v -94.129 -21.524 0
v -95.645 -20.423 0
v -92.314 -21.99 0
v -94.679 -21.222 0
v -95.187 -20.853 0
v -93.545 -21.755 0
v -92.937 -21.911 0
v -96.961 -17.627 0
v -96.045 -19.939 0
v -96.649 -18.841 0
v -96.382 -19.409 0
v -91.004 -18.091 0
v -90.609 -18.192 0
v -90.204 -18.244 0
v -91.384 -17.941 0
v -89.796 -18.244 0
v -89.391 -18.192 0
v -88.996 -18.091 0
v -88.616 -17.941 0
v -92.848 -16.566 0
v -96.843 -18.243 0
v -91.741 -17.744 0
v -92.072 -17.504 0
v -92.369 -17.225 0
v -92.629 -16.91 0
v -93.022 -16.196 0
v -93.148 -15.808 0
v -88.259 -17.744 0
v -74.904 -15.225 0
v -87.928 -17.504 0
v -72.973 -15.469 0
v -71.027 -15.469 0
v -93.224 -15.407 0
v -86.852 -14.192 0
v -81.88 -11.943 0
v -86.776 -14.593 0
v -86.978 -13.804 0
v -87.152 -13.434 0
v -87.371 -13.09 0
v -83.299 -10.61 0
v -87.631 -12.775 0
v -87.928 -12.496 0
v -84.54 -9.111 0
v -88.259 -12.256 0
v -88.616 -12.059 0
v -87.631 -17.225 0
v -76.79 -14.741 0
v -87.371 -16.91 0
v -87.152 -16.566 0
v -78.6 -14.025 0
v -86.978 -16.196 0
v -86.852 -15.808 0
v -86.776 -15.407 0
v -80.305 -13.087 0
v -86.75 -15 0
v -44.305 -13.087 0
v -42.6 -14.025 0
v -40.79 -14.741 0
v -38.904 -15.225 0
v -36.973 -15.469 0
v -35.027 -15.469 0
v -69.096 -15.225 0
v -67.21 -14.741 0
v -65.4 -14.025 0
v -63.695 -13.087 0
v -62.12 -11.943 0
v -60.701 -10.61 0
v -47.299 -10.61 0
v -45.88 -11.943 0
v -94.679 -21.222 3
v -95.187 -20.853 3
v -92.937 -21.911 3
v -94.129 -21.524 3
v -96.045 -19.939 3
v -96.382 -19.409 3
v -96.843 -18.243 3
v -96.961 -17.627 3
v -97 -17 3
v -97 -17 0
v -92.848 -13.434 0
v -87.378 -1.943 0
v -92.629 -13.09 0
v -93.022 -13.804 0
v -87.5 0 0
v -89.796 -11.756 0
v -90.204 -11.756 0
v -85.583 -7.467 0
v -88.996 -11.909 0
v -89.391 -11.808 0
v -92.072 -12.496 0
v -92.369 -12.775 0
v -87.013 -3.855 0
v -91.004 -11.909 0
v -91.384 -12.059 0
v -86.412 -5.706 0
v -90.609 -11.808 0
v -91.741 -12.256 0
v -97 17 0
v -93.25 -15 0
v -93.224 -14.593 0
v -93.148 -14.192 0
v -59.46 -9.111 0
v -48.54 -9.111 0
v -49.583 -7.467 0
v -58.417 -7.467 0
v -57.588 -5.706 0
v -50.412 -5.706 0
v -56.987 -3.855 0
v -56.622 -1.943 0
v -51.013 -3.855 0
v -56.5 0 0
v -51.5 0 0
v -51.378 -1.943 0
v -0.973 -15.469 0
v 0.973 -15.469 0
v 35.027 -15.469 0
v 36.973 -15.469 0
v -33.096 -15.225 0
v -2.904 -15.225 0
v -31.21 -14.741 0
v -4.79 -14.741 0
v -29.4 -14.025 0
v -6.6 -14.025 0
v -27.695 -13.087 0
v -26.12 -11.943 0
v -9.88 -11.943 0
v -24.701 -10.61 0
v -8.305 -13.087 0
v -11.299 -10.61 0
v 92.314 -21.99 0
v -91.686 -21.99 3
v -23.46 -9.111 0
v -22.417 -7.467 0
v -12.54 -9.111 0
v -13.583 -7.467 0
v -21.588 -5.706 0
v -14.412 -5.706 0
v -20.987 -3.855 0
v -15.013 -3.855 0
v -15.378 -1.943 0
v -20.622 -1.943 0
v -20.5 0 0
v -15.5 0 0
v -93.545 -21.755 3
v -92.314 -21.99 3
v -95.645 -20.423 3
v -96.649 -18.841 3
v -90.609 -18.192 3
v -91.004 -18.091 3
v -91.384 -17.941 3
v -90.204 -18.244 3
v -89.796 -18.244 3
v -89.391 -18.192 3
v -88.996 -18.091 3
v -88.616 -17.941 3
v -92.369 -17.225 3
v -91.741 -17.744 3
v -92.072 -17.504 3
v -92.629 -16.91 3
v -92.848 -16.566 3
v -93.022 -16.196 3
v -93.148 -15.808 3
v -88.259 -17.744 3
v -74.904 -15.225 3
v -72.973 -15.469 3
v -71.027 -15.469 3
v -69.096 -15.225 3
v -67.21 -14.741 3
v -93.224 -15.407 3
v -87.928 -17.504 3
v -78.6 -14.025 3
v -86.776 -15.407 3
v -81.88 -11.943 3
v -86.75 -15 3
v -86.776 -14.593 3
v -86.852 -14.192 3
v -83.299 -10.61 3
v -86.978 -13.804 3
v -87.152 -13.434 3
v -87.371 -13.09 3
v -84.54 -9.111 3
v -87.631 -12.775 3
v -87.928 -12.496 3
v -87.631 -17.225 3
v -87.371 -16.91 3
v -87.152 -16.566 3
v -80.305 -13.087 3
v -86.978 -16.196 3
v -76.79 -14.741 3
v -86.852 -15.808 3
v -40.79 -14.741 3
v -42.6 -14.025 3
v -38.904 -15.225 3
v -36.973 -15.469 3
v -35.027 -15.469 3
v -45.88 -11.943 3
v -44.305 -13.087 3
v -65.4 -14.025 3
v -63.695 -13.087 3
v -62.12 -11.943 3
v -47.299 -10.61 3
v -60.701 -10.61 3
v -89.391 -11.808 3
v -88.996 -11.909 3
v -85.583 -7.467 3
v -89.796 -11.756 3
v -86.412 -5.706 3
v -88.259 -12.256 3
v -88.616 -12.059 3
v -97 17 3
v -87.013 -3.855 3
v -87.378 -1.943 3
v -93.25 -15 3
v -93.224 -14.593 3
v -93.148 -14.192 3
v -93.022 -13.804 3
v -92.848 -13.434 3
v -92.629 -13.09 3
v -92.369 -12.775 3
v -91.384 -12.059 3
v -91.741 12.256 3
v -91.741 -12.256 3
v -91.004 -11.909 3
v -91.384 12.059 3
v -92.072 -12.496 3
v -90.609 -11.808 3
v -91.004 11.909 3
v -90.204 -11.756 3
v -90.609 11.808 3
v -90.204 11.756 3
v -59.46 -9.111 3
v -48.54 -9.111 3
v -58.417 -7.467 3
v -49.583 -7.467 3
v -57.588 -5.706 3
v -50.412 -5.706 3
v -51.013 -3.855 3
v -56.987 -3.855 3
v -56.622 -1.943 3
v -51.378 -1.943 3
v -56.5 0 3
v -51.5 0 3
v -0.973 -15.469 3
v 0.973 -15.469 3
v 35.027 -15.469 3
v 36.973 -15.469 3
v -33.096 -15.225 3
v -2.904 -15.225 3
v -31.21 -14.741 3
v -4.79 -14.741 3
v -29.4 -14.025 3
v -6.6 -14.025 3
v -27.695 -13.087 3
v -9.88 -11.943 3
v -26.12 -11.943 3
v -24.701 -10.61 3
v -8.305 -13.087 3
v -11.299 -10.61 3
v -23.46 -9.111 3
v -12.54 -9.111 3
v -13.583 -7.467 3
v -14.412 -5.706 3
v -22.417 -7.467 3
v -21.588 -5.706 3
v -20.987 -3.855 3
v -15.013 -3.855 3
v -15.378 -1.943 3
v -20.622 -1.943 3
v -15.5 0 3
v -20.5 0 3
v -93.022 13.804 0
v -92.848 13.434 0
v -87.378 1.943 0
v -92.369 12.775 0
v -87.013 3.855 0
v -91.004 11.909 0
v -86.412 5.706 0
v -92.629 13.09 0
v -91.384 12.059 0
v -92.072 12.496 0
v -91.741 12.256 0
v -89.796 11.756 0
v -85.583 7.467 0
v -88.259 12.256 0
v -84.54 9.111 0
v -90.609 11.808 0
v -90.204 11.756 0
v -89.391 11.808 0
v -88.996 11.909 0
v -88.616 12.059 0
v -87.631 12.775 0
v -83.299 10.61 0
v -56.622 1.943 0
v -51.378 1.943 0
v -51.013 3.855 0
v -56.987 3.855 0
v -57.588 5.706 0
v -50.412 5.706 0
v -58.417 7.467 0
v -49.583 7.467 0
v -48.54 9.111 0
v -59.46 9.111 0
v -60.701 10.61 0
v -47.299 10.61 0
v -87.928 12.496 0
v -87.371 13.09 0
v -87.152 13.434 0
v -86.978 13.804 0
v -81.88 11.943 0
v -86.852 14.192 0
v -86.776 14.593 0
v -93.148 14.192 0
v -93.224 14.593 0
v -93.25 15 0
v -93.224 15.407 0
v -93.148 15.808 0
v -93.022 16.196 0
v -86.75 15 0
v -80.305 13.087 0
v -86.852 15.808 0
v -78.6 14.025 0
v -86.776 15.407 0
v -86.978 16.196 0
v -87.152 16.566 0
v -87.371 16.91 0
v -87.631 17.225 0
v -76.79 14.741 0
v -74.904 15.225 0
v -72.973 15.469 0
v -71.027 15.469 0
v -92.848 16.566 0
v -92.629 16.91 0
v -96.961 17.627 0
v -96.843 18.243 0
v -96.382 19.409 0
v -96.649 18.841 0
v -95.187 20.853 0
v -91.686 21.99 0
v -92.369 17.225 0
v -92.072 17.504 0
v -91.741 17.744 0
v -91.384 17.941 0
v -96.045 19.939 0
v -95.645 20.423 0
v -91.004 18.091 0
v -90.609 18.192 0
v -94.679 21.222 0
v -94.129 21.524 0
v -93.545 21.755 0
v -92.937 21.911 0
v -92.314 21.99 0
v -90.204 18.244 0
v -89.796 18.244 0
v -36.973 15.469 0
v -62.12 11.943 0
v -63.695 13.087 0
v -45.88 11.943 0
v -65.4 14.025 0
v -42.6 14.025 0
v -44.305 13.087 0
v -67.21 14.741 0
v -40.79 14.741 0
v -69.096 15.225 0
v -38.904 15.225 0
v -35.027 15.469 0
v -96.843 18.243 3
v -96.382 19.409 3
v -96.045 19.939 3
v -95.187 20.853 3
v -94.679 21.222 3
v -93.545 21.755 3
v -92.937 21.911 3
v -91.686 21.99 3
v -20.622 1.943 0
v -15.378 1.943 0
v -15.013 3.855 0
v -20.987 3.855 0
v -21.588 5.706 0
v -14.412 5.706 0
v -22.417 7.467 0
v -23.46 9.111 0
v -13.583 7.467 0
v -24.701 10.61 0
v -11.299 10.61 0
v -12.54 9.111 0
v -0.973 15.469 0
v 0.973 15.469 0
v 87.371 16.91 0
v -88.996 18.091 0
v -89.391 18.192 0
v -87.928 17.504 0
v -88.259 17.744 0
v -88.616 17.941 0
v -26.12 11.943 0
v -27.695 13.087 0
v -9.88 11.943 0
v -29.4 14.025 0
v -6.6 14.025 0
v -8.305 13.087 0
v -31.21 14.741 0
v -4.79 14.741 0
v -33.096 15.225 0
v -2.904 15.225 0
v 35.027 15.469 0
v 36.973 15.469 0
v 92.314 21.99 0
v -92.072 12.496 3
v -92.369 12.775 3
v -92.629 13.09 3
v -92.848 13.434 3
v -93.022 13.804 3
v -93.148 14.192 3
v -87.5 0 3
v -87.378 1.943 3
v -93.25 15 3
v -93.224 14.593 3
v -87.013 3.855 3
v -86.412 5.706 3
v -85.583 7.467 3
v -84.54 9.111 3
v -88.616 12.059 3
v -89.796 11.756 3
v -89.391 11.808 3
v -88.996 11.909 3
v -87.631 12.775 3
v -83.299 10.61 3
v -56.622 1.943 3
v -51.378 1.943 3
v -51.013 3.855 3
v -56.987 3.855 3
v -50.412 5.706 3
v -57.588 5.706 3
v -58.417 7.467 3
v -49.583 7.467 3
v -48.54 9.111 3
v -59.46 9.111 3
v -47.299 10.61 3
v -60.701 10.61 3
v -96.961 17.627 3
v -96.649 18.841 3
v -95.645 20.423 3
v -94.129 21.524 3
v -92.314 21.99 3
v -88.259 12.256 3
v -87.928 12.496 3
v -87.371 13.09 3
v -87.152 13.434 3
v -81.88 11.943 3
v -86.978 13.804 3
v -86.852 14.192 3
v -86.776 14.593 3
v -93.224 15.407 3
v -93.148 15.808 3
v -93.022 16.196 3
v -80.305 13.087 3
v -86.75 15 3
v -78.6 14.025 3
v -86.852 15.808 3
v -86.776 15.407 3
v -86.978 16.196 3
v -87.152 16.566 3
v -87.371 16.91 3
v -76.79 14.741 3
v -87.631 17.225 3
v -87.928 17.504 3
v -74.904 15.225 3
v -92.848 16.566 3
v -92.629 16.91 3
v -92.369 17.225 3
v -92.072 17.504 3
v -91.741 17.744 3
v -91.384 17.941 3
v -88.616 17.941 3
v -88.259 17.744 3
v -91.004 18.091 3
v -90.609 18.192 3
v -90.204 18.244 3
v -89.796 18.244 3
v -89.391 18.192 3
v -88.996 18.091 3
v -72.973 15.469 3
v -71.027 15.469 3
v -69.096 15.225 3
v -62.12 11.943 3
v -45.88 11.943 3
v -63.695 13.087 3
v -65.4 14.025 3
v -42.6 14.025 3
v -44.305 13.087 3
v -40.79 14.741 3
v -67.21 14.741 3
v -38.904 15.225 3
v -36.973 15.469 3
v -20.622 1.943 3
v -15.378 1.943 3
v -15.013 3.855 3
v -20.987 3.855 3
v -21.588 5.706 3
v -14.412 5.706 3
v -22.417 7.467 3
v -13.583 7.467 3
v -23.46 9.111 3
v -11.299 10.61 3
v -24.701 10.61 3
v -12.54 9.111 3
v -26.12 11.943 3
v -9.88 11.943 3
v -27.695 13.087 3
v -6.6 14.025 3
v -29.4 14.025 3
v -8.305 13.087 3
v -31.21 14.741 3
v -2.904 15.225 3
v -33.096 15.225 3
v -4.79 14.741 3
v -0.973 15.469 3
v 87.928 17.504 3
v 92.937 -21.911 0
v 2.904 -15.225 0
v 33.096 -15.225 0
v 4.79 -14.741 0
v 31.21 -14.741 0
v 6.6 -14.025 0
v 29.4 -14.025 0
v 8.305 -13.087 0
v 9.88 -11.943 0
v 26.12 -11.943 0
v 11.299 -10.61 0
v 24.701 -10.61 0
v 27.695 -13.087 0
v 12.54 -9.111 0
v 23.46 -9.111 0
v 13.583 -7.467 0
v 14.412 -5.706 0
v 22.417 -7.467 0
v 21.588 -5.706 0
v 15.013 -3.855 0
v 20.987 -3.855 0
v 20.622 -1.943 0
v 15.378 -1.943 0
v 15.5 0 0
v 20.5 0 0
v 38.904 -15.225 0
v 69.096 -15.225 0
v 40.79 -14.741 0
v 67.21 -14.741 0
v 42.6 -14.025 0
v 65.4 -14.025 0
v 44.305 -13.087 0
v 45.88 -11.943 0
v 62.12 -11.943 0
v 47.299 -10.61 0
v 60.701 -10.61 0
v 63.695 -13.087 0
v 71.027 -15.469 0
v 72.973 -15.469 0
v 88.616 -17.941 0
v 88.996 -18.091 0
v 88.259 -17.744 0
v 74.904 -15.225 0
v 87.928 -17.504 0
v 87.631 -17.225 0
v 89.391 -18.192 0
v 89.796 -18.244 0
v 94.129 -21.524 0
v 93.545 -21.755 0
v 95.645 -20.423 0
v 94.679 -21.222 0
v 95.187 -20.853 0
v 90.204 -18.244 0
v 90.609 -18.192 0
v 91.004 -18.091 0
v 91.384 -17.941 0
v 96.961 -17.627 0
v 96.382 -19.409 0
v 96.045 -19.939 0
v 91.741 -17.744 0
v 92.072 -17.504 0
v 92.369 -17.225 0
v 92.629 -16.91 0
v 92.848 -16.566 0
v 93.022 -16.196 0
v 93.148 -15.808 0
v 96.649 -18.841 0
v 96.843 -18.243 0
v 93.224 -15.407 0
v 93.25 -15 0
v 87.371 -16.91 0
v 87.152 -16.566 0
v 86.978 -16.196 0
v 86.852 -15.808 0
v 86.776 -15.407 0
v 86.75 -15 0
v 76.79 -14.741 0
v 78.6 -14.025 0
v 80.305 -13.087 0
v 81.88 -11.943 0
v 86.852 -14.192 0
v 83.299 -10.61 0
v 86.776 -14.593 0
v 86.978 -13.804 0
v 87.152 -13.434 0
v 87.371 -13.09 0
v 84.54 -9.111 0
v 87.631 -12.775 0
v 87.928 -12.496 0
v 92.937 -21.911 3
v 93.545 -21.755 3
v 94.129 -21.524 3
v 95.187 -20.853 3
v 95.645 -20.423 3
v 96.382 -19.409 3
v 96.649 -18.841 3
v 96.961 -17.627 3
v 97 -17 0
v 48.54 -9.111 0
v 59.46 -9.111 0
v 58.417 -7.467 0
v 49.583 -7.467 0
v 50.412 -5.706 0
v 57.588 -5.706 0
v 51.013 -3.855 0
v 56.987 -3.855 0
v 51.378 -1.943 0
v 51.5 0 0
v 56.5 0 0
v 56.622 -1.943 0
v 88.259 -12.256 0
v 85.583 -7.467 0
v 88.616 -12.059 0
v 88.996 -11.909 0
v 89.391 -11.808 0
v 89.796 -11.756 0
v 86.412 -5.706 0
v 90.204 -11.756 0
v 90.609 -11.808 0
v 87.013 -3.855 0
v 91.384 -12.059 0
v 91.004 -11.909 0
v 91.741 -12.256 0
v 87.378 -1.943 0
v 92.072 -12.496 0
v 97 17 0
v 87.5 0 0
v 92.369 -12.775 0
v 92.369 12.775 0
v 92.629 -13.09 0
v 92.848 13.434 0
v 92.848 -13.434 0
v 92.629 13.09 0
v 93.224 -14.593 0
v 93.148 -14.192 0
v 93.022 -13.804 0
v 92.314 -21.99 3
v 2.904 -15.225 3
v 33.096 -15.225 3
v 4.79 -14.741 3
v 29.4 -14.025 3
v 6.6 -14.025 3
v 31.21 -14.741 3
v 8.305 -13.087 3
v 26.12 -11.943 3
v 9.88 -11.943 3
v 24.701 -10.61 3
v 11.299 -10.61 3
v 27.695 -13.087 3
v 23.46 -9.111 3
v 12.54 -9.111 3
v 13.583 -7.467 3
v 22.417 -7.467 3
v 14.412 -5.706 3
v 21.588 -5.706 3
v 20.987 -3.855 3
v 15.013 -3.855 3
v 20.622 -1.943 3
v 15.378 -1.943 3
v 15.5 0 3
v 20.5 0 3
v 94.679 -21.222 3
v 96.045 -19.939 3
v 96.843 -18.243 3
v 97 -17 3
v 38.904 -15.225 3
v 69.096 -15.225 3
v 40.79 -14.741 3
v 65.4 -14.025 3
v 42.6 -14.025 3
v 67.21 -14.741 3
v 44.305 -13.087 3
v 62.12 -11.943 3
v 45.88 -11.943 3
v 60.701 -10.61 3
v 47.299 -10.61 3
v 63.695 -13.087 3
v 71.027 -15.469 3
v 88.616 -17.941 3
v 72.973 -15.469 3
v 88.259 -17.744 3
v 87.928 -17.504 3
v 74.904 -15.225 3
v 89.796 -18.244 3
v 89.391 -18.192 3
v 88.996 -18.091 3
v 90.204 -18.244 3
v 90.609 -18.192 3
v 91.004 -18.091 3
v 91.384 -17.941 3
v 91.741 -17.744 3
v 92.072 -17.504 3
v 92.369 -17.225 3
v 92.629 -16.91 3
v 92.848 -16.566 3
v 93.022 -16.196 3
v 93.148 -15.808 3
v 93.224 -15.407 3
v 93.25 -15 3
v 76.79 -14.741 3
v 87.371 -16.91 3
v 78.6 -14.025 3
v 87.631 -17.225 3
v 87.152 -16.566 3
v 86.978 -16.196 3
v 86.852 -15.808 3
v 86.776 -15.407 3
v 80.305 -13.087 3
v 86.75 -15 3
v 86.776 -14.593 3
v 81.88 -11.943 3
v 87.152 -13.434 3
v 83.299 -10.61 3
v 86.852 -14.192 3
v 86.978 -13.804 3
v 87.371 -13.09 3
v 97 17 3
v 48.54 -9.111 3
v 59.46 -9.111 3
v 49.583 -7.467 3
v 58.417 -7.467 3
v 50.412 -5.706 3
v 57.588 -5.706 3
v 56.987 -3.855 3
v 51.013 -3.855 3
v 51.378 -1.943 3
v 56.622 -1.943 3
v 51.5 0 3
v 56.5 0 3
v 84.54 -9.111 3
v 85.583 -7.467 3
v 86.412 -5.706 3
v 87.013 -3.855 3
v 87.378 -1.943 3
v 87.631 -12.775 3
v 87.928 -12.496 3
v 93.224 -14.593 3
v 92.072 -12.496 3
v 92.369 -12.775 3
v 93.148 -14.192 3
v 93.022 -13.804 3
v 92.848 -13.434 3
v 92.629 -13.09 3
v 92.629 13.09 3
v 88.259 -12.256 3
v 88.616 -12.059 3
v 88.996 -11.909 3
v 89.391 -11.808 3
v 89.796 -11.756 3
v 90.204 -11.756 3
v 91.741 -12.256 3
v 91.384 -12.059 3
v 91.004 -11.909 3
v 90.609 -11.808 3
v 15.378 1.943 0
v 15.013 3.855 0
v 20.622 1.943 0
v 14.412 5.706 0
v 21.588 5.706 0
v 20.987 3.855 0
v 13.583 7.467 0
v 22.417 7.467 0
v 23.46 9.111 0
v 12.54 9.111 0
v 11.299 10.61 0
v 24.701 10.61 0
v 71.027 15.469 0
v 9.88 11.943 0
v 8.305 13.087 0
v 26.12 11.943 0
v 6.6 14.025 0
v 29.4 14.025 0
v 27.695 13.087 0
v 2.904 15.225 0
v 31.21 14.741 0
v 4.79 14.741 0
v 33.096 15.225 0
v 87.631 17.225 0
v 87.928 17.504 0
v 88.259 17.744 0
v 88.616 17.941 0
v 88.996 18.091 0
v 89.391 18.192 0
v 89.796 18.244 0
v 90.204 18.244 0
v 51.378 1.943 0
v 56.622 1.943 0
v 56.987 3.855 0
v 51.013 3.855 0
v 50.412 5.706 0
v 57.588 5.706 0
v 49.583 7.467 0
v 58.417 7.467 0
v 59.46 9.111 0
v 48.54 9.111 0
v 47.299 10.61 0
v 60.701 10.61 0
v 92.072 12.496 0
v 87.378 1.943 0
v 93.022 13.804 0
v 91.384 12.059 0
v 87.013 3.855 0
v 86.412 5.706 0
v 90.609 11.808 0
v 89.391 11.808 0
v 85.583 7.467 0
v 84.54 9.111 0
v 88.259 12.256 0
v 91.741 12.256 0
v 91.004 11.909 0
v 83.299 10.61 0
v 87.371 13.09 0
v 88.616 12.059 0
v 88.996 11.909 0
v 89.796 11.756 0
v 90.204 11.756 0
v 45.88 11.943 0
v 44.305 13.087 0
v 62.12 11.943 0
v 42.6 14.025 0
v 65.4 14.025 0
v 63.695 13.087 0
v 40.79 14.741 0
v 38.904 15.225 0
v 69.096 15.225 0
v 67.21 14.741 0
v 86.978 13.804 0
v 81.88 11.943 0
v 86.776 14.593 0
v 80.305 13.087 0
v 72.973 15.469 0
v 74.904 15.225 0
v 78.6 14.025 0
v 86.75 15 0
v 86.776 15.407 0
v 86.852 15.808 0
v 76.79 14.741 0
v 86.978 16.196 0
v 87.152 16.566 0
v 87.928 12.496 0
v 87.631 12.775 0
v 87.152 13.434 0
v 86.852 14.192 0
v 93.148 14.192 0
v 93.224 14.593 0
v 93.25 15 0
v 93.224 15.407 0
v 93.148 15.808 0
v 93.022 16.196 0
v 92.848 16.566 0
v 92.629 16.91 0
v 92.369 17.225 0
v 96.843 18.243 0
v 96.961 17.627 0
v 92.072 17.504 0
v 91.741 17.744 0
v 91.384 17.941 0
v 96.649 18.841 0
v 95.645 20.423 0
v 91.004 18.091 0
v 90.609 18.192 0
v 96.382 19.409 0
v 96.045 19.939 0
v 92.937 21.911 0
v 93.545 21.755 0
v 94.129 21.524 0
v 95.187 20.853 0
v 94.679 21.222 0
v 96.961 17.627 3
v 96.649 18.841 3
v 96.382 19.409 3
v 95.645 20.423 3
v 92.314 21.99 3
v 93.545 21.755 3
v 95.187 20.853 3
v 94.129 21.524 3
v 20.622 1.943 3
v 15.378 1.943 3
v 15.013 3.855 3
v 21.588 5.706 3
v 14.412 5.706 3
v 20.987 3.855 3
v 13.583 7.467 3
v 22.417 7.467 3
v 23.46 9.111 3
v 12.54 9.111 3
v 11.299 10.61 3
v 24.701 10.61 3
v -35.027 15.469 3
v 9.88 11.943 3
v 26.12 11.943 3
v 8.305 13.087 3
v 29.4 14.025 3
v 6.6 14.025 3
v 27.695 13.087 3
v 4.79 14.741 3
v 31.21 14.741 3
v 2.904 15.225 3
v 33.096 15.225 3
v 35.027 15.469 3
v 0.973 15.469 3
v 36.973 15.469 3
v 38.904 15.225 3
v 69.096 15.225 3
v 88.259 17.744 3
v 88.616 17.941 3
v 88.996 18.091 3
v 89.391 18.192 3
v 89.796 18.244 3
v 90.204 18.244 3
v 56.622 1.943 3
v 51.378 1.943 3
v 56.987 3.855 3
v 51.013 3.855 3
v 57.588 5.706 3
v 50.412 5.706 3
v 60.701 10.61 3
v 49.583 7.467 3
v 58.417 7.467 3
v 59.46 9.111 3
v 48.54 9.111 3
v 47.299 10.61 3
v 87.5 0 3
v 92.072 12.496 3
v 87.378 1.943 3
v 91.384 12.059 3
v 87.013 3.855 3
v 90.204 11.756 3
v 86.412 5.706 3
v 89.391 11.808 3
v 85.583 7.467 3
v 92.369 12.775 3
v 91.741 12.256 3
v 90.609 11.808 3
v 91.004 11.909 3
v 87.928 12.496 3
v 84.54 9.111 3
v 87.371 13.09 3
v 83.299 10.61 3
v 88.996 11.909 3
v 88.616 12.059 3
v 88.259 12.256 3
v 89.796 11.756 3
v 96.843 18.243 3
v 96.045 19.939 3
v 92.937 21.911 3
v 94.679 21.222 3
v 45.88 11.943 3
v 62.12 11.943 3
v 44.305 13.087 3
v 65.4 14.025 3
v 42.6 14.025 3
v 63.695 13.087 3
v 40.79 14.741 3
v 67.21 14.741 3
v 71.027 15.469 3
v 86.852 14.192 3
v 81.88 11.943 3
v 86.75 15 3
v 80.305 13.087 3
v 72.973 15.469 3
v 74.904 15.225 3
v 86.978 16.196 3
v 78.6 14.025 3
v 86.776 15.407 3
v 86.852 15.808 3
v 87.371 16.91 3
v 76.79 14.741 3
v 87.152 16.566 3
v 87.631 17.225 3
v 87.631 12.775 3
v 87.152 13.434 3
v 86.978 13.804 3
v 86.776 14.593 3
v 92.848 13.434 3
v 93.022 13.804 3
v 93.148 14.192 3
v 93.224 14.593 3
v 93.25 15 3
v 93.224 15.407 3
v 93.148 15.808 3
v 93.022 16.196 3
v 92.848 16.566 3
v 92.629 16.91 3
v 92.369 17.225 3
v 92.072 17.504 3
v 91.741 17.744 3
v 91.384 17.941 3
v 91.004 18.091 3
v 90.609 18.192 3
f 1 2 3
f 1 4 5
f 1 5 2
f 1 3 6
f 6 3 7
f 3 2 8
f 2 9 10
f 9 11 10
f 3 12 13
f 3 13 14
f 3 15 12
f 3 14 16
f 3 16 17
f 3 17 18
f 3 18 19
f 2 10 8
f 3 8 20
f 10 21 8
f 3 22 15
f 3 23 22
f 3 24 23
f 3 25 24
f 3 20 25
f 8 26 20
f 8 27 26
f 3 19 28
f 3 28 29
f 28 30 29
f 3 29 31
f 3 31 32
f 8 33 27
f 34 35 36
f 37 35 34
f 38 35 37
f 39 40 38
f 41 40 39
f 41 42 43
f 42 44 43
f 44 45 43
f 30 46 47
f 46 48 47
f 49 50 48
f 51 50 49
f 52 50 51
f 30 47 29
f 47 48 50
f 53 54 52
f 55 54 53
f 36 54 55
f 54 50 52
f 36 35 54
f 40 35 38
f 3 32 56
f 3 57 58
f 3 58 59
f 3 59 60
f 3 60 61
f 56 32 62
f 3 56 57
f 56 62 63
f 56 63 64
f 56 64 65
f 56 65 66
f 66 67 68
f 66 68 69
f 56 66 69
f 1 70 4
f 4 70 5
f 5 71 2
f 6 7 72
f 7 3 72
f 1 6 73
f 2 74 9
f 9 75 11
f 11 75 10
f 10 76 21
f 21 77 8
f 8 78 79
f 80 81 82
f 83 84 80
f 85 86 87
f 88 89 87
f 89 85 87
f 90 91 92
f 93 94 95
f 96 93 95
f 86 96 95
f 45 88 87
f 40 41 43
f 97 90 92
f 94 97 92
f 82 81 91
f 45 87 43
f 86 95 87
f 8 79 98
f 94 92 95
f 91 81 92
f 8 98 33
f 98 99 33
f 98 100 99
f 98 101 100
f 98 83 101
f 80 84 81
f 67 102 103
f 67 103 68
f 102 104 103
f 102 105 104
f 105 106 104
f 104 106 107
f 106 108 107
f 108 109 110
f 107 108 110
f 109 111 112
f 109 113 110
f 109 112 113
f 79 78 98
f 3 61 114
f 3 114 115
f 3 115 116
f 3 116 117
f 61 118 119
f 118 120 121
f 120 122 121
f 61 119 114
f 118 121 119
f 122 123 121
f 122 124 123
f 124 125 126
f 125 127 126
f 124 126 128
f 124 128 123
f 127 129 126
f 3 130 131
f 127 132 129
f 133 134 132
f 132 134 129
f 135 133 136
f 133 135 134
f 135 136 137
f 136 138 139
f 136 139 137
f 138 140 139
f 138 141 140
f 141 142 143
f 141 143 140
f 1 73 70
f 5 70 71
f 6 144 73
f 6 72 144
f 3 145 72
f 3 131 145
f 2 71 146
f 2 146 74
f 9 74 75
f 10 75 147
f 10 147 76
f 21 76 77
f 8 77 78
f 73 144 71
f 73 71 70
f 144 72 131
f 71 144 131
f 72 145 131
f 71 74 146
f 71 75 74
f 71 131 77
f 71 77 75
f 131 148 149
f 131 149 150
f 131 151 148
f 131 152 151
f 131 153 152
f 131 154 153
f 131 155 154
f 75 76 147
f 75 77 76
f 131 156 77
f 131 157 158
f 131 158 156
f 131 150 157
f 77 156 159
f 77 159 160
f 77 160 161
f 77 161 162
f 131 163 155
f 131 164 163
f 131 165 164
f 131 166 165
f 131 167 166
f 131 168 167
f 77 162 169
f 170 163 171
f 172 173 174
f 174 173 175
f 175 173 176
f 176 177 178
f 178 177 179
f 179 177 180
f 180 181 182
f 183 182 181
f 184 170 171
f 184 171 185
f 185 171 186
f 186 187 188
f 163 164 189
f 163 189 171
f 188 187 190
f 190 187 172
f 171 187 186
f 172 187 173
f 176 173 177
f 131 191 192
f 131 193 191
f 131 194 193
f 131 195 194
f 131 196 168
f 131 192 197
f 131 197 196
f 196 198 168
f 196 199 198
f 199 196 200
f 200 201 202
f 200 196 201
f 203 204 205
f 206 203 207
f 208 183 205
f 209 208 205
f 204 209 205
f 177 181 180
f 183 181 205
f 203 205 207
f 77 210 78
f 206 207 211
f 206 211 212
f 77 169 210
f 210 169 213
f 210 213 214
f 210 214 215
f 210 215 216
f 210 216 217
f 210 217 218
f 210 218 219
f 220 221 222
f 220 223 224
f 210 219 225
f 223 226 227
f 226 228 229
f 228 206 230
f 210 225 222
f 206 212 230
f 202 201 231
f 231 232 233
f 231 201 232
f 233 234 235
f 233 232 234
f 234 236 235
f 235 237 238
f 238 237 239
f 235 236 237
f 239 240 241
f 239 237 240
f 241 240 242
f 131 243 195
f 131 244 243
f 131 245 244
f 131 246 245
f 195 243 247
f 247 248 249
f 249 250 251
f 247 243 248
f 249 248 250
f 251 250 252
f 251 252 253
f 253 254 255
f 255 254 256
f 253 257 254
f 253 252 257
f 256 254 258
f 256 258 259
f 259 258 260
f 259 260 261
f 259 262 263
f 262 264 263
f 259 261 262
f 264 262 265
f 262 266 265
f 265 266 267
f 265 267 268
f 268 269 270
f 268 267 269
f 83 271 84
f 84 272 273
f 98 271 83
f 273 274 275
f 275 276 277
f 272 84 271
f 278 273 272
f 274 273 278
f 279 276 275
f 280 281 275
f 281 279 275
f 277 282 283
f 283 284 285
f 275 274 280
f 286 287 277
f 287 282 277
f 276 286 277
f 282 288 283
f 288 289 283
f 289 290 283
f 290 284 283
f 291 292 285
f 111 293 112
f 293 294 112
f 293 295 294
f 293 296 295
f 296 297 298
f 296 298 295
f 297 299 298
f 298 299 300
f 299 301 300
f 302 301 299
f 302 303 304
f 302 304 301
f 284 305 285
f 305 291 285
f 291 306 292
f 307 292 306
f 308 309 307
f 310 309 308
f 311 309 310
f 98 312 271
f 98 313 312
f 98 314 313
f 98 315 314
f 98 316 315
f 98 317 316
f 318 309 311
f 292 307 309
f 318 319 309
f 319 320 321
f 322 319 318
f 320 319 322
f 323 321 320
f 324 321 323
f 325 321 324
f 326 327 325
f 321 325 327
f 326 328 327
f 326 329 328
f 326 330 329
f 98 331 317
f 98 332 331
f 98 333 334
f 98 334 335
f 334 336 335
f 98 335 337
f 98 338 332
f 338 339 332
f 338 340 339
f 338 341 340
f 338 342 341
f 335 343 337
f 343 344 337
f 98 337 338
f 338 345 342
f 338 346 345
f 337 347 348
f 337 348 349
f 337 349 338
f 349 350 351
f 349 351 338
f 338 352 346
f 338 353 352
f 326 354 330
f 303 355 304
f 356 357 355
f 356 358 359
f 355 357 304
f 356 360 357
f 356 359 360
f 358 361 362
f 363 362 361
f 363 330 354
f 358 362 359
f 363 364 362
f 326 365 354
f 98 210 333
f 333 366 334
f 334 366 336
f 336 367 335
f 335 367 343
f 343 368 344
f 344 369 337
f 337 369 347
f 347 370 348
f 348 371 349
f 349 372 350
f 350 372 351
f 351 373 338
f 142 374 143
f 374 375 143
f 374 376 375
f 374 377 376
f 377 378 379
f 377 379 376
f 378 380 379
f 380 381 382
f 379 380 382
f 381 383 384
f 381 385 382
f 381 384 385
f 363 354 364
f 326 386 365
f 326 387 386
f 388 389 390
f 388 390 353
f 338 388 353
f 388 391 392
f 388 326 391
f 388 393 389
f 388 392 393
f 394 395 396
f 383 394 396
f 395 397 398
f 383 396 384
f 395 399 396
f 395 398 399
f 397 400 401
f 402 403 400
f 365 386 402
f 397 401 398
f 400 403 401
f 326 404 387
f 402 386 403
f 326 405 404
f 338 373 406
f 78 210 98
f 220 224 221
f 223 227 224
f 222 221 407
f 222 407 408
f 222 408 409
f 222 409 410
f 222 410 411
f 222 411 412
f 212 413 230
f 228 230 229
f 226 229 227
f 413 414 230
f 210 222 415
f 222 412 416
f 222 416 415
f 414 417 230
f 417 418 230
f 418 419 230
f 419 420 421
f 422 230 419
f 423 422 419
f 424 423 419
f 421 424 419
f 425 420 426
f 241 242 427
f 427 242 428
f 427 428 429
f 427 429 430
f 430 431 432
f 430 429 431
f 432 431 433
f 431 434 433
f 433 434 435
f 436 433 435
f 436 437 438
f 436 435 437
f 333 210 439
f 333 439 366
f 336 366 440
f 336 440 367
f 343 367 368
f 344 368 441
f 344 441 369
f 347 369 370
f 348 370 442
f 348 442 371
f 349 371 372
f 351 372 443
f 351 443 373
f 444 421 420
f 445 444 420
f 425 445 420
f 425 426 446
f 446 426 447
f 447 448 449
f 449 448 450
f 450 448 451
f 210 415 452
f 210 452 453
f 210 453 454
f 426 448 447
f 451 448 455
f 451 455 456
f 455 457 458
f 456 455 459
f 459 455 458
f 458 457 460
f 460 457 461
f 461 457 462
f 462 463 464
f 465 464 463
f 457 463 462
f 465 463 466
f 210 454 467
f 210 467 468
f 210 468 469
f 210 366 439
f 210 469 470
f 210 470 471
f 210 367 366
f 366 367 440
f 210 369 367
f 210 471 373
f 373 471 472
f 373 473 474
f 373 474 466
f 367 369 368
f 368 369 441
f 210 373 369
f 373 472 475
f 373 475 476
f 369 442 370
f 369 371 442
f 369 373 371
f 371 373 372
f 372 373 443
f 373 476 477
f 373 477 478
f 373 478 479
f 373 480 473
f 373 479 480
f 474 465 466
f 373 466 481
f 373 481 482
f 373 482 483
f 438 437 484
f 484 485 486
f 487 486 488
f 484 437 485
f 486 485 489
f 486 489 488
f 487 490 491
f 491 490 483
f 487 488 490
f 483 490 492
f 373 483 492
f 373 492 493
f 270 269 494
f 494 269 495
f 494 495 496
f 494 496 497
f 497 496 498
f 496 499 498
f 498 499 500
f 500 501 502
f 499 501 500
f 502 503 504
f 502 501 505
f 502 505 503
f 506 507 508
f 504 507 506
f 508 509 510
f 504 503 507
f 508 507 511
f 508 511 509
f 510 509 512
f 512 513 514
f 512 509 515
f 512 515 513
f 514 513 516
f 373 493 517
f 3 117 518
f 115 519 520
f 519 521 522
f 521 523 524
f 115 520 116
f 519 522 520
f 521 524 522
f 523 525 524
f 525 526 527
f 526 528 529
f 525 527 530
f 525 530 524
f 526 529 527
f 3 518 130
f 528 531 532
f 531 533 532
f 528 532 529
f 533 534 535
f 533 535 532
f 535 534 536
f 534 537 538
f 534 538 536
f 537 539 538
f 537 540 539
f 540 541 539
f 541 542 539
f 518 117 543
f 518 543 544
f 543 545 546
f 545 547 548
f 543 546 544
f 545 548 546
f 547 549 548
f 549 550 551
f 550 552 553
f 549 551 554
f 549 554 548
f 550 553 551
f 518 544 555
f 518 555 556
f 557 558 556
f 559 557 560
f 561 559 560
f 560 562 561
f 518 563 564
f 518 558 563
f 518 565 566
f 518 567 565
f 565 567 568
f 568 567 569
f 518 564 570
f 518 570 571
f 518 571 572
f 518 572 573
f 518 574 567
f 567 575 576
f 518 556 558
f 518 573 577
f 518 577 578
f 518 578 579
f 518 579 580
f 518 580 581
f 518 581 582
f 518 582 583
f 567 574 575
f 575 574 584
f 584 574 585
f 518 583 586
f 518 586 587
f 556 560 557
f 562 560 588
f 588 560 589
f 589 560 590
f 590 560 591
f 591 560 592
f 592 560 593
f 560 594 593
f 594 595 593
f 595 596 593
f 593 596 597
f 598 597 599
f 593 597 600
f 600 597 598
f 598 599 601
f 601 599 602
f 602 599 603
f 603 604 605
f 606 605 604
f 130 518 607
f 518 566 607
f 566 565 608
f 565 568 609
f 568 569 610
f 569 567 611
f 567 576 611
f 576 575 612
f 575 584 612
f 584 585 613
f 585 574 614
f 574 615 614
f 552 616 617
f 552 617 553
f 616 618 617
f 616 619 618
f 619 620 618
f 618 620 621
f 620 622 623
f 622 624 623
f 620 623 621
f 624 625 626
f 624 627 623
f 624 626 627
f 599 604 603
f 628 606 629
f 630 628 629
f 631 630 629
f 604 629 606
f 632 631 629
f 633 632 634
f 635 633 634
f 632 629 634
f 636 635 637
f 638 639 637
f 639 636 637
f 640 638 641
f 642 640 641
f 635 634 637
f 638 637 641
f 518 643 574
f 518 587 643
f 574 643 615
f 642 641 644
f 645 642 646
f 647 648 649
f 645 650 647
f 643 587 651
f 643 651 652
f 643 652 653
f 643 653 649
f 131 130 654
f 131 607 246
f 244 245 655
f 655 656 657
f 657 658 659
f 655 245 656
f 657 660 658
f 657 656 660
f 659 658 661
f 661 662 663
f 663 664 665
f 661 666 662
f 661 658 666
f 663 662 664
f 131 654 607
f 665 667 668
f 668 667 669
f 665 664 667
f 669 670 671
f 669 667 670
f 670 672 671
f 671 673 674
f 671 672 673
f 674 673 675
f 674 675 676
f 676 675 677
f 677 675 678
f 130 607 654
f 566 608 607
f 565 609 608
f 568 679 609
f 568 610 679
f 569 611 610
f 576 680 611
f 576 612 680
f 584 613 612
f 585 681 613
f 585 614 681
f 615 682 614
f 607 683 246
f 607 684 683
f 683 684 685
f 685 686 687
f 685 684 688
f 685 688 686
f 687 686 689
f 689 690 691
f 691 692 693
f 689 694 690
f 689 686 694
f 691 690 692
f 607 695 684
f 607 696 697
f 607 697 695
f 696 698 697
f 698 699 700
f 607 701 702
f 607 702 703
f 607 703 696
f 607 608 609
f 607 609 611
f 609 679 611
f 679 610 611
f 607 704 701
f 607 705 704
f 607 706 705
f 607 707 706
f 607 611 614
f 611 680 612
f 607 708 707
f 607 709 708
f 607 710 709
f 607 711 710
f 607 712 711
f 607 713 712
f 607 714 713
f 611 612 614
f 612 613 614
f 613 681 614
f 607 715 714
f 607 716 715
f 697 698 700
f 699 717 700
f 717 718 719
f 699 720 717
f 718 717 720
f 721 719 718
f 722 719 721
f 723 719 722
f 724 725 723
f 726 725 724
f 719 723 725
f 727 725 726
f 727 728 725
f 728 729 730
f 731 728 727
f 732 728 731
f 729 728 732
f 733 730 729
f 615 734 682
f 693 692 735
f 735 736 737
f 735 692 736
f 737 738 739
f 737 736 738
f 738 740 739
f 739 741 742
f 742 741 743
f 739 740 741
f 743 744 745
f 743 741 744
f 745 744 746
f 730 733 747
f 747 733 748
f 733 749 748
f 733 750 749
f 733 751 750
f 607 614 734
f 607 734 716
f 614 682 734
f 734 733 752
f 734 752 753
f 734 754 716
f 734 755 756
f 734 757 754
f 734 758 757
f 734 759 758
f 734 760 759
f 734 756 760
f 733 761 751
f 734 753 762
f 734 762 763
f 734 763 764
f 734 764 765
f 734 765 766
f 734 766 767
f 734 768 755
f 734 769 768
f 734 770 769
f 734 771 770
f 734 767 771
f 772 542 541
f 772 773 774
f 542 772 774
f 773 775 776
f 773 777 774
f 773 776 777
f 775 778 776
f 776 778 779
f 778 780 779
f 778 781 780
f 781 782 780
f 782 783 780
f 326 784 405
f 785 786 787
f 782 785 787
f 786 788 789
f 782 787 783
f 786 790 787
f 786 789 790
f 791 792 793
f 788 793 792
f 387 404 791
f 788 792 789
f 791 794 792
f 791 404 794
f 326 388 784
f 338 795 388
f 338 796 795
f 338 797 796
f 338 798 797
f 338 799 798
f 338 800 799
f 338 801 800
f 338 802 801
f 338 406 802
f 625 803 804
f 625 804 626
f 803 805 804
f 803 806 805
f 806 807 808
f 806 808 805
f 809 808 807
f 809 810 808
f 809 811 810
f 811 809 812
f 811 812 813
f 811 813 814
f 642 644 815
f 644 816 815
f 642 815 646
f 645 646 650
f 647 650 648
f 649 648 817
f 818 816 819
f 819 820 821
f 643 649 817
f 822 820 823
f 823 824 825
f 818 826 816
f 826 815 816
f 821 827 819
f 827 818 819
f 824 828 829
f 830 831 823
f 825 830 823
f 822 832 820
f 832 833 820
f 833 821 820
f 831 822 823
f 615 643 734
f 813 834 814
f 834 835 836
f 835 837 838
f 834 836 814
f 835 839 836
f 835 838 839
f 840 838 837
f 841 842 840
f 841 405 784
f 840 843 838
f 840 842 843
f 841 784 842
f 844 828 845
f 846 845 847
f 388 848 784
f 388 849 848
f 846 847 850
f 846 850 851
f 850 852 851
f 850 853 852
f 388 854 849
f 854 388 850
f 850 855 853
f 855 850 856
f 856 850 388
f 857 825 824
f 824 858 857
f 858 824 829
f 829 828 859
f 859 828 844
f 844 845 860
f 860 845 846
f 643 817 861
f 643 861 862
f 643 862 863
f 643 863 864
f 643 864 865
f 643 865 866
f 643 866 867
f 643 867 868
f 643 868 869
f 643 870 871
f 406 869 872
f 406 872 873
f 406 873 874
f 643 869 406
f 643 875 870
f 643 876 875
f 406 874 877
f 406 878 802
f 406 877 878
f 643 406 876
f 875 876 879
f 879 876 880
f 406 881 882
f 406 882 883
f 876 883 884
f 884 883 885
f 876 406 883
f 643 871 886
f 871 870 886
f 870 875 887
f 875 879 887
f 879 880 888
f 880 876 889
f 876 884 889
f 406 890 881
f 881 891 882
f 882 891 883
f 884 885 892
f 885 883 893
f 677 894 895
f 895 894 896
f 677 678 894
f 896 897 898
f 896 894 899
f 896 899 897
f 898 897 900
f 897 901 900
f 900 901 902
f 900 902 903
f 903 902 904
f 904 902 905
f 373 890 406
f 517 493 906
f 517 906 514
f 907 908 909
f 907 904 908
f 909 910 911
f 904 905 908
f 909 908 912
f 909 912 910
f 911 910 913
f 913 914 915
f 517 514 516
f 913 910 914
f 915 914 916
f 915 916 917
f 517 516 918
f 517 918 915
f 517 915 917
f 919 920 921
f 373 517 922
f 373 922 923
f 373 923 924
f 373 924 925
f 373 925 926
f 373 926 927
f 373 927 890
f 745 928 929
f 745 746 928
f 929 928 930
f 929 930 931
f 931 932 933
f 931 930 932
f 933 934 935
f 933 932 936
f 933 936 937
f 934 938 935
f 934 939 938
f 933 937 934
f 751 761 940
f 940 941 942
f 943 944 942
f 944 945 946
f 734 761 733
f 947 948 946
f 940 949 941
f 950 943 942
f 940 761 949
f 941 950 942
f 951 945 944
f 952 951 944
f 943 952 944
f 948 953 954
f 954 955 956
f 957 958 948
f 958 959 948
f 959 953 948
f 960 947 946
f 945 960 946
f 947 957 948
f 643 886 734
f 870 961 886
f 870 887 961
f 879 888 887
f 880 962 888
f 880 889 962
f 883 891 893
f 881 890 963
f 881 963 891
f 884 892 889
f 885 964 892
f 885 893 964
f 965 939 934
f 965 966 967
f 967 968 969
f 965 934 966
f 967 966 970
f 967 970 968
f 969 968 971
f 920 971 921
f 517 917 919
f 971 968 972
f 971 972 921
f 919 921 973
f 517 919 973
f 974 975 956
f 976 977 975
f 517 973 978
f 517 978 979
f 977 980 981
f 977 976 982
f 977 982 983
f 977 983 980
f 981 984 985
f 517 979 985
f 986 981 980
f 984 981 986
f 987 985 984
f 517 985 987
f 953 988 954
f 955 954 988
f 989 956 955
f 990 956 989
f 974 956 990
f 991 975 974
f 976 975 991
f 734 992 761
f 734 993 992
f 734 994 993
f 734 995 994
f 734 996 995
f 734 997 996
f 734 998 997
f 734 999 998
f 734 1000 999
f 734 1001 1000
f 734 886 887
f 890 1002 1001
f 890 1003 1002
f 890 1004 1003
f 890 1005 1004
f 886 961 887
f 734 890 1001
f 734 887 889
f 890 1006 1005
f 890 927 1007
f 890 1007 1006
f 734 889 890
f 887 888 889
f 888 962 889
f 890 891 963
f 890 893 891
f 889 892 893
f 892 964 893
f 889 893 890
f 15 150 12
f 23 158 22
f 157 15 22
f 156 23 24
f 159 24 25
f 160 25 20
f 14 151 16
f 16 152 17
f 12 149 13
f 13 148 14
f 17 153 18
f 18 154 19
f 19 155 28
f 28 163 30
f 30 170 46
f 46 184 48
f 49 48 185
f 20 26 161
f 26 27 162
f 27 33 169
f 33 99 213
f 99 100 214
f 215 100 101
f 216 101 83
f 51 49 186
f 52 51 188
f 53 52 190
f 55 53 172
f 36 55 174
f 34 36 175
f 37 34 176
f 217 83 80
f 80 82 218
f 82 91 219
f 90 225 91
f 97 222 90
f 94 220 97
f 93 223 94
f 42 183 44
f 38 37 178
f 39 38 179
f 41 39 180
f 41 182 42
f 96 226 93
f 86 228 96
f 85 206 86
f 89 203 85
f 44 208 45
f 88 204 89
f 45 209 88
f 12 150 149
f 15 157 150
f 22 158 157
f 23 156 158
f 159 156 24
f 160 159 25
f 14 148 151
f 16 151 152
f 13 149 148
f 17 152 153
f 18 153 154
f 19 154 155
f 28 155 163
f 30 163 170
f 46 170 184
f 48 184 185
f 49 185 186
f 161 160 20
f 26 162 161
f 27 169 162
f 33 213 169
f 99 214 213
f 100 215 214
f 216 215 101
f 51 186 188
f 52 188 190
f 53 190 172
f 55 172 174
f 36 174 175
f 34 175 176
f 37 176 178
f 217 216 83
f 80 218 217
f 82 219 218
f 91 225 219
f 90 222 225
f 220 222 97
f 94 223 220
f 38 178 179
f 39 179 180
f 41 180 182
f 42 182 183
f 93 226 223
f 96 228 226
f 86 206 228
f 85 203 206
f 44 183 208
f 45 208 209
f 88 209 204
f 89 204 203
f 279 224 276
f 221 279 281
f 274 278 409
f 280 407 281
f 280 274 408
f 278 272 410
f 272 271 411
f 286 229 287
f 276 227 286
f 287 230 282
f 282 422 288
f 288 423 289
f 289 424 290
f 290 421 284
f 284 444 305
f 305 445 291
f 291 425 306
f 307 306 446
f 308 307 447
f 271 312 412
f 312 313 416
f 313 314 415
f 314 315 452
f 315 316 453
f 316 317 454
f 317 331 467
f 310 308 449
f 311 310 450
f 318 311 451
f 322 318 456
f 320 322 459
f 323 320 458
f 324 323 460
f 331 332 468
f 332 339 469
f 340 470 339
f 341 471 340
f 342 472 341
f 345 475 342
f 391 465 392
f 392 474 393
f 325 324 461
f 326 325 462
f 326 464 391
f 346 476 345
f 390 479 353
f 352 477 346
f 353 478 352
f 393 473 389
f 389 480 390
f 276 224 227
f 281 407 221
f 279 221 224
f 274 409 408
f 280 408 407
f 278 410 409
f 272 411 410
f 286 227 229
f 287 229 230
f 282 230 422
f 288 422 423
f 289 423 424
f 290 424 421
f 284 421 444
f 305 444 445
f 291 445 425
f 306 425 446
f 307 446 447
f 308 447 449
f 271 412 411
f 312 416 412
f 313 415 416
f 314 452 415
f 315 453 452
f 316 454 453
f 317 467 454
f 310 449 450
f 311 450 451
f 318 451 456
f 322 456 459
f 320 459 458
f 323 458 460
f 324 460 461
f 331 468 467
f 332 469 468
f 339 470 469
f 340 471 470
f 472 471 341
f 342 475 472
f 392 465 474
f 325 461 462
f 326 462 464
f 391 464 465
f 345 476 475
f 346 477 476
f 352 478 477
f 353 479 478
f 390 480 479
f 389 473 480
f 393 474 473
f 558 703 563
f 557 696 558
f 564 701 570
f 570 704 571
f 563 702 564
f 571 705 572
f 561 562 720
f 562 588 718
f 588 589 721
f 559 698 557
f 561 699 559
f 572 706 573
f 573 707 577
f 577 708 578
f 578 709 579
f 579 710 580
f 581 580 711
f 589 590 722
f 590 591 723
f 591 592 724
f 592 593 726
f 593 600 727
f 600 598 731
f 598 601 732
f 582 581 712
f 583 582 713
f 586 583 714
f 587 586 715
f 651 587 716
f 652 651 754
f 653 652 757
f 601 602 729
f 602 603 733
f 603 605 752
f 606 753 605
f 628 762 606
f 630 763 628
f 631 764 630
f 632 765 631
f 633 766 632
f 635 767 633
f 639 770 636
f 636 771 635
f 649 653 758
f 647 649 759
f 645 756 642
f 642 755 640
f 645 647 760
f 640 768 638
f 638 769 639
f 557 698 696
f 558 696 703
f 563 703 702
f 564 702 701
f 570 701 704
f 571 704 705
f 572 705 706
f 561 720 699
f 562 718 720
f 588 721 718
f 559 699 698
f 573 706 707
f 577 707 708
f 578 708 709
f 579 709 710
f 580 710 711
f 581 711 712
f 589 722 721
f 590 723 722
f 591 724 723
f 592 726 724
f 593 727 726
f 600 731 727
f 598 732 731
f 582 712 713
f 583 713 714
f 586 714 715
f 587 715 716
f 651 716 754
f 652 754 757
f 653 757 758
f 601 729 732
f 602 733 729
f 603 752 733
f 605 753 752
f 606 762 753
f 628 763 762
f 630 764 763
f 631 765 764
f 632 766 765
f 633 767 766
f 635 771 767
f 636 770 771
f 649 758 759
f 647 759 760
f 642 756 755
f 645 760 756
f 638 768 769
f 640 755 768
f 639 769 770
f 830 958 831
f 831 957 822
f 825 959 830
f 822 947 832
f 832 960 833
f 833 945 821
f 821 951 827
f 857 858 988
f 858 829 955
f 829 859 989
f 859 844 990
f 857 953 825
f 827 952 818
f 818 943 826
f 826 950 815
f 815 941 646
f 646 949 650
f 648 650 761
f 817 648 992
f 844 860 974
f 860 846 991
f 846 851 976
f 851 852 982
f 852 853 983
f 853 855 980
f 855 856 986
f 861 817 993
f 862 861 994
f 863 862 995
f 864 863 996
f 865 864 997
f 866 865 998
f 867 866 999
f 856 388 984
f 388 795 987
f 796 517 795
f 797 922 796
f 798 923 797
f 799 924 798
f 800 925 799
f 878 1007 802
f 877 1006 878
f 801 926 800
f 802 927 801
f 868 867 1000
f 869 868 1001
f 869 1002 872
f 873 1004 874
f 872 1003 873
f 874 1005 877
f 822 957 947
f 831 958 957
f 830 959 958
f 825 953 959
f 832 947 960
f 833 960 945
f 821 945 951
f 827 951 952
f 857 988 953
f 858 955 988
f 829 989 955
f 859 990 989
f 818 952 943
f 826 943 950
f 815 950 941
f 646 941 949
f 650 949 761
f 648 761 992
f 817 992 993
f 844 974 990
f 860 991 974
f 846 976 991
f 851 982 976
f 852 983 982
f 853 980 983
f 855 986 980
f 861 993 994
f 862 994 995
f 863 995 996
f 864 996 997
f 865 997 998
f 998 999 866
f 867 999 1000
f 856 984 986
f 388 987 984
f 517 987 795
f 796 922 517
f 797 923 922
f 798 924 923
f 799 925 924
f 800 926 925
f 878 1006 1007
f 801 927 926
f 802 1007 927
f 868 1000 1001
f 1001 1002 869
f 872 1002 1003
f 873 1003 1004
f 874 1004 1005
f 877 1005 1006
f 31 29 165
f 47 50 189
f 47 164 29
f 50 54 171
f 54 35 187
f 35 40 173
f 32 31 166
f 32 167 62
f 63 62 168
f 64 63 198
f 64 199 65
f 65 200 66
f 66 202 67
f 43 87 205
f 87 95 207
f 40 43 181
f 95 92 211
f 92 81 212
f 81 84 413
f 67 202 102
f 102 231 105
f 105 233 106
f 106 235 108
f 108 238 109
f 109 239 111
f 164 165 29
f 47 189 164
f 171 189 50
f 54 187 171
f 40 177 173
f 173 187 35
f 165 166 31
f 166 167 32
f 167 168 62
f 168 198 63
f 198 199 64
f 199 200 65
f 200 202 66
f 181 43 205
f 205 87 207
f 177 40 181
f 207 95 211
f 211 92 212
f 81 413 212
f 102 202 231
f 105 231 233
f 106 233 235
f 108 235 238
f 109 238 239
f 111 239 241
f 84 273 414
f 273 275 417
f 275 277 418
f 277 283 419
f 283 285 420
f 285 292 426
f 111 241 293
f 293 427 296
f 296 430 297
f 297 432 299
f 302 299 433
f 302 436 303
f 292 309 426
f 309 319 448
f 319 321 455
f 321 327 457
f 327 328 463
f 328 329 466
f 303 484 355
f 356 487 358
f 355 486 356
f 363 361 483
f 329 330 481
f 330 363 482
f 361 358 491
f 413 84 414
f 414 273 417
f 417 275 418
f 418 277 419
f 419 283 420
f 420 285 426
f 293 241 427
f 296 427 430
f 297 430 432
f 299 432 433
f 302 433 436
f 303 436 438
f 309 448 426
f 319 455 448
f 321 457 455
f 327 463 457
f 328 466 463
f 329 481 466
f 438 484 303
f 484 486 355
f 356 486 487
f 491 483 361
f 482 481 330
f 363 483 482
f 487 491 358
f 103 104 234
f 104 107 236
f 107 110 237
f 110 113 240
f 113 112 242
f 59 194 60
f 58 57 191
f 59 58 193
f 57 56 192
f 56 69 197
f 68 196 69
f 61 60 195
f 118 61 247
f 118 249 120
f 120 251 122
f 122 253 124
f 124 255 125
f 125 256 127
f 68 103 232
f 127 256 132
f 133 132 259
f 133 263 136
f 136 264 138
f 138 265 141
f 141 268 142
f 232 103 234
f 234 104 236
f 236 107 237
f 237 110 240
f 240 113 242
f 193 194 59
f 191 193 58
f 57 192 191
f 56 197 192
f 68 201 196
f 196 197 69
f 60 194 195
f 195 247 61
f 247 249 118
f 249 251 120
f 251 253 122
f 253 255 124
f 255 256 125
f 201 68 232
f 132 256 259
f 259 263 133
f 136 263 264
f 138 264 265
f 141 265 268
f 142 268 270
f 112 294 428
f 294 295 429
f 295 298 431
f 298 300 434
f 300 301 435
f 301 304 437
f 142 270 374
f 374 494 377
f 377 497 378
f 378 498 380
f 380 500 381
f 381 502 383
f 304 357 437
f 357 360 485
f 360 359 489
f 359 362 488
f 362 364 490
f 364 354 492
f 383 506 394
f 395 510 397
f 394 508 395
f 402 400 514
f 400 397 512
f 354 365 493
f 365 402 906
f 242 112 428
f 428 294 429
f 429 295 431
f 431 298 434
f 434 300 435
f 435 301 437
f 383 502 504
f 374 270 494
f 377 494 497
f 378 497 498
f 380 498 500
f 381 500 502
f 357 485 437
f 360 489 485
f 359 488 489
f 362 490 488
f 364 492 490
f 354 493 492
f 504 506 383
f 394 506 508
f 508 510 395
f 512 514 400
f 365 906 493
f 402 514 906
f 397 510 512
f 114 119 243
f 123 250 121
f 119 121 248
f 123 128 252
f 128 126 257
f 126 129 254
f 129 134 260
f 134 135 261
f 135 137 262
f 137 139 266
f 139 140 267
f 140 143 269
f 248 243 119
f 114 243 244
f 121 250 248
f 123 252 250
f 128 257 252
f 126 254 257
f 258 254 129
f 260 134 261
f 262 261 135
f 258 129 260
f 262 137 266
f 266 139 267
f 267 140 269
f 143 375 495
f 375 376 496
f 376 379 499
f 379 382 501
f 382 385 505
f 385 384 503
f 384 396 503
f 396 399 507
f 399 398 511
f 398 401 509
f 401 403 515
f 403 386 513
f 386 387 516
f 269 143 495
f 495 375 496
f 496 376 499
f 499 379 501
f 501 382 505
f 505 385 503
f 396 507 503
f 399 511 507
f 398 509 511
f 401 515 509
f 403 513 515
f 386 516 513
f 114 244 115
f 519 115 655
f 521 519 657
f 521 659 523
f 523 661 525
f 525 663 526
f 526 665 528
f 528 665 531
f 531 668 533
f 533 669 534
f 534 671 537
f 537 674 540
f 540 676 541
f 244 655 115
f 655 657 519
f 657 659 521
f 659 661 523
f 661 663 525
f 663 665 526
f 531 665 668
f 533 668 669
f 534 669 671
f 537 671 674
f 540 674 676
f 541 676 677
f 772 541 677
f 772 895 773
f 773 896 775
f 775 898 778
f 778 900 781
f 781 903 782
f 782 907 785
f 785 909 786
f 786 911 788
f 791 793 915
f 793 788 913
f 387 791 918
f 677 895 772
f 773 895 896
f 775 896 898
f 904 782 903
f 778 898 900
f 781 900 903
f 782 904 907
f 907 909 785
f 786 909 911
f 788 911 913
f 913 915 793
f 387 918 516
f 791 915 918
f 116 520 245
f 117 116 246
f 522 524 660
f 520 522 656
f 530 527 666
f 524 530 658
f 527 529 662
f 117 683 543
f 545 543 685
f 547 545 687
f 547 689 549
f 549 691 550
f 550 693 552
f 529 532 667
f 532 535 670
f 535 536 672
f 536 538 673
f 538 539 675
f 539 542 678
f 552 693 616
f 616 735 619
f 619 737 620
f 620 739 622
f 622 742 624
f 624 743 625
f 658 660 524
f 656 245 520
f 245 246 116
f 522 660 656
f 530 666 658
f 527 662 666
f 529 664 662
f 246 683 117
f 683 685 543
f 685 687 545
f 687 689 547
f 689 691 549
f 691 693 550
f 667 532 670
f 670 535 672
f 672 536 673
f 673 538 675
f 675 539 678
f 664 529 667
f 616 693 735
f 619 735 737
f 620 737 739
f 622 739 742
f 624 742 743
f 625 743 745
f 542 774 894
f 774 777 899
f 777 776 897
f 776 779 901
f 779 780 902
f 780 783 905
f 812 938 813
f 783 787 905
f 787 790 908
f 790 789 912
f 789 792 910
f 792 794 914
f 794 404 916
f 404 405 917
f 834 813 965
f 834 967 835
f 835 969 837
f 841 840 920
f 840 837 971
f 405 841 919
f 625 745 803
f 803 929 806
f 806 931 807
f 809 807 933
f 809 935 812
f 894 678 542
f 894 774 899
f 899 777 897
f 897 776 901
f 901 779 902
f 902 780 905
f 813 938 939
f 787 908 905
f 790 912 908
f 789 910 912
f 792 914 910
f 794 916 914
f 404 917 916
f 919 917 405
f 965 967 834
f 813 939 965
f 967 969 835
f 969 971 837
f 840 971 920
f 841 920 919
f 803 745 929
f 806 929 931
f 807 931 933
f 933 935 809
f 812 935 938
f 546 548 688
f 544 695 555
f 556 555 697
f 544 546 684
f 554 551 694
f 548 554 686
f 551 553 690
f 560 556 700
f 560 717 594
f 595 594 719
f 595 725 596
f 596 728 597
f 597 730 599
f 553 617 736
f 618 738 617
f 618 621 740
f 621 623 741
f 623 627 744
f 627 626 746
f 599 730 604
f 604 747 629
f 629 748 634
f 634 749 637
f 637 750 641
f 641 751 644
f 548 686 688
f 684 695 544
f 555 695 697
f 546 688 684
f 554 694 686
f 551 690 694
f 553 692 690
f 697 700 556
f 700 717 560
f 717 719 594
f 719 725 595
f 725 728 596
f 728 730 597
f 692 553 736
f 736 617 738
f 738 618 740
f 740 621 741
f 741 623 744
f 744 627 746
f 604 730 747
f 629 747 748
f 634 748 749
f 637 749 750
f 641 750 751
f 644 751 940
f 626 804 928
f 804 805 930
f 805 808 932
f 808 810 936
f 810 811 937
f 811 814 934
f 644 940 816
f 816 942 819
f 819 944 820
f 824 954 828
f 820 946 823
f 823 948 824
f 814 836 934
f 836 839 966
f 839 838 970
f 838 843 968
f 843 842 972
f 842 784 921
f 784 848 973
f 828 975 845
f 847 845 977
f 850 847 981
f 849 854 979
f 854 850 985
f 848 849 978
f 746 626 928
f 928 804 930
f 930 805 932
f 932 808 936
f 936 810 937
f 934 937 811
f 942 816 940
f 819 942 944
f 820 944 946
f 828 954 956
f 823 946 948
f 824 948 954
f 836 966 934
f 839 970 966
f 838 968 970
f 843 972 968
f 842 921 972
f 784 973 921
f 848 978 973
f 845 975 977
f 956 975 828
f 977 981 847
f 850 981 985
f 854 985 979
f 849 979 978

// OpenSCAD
$fn = 50;

difference() {
	union() {
		hull() {
			translate(v = [-92.0, 17.0, 0]) {
				cylinder(h = 3, r = 5);
			}
			translate(v = [92.0, 17.0, 0]) {
				cylinder(h = 3, r = 5);
			}
			translate(v = [-92.0, -17.0, 0]) {
				cylinder(h = 3, r = 5);
			}
			translate(v = [92.0, -17.0, 0]) {
				cylinder(h = 3, r = 5);
			}
		}
	}
	union() {
		translate(v = [-90.0, -15.0, -100.0]) {
			cylinder(h = 200, r = 3.25);
		}
		translate(v = [-90.0, 15.0, -100.0]) {
			cylinder(h = 200, r = 3.25);
		}
		translate(v = [90.0, -15.0, -100.0]) {
			cylinder(h = 200, r = 3.25);
		}
		translate(v = [90.0, 15.0, -100.0]) {
			cylinder(h = 200, r = 3.25);
		}
		translate(v = [-90.0, -15.0, -100.0]) {
			cylinder(h = 200, r = 1.8);
		}
		translate(v = [-90.0, 15.0, -100.0]) {
			cylinder(h = 200, r = 1.8);
		}
		translate(v = [90.0, -15.0, -100.0]) {
			cylinder(h = 200, r = 1.8);
		}
		translate(v = [90.0, 15.0, -100.0]) {
			cylinder(h = 200, r = 1.8);
		}
		translate(v = [-72.0, 0, 0.0]) {
			cylinder(h = 3, r = 15.5);
		}
		translate(v = [-36.0, 0, 0.0]) {
			cylinder(h = 3, r = 15.5);
		}
		cylinder(h = 3, r = 15.5);
		translate(v = [36.0, 0, 0.0]) {
			cylinder(h = 3, r = 15.5);
		}
		translate(v = [72.0, 0, 0.0]) {
			cylinder(h = 3, r = 15.5);
		}
	}
}
